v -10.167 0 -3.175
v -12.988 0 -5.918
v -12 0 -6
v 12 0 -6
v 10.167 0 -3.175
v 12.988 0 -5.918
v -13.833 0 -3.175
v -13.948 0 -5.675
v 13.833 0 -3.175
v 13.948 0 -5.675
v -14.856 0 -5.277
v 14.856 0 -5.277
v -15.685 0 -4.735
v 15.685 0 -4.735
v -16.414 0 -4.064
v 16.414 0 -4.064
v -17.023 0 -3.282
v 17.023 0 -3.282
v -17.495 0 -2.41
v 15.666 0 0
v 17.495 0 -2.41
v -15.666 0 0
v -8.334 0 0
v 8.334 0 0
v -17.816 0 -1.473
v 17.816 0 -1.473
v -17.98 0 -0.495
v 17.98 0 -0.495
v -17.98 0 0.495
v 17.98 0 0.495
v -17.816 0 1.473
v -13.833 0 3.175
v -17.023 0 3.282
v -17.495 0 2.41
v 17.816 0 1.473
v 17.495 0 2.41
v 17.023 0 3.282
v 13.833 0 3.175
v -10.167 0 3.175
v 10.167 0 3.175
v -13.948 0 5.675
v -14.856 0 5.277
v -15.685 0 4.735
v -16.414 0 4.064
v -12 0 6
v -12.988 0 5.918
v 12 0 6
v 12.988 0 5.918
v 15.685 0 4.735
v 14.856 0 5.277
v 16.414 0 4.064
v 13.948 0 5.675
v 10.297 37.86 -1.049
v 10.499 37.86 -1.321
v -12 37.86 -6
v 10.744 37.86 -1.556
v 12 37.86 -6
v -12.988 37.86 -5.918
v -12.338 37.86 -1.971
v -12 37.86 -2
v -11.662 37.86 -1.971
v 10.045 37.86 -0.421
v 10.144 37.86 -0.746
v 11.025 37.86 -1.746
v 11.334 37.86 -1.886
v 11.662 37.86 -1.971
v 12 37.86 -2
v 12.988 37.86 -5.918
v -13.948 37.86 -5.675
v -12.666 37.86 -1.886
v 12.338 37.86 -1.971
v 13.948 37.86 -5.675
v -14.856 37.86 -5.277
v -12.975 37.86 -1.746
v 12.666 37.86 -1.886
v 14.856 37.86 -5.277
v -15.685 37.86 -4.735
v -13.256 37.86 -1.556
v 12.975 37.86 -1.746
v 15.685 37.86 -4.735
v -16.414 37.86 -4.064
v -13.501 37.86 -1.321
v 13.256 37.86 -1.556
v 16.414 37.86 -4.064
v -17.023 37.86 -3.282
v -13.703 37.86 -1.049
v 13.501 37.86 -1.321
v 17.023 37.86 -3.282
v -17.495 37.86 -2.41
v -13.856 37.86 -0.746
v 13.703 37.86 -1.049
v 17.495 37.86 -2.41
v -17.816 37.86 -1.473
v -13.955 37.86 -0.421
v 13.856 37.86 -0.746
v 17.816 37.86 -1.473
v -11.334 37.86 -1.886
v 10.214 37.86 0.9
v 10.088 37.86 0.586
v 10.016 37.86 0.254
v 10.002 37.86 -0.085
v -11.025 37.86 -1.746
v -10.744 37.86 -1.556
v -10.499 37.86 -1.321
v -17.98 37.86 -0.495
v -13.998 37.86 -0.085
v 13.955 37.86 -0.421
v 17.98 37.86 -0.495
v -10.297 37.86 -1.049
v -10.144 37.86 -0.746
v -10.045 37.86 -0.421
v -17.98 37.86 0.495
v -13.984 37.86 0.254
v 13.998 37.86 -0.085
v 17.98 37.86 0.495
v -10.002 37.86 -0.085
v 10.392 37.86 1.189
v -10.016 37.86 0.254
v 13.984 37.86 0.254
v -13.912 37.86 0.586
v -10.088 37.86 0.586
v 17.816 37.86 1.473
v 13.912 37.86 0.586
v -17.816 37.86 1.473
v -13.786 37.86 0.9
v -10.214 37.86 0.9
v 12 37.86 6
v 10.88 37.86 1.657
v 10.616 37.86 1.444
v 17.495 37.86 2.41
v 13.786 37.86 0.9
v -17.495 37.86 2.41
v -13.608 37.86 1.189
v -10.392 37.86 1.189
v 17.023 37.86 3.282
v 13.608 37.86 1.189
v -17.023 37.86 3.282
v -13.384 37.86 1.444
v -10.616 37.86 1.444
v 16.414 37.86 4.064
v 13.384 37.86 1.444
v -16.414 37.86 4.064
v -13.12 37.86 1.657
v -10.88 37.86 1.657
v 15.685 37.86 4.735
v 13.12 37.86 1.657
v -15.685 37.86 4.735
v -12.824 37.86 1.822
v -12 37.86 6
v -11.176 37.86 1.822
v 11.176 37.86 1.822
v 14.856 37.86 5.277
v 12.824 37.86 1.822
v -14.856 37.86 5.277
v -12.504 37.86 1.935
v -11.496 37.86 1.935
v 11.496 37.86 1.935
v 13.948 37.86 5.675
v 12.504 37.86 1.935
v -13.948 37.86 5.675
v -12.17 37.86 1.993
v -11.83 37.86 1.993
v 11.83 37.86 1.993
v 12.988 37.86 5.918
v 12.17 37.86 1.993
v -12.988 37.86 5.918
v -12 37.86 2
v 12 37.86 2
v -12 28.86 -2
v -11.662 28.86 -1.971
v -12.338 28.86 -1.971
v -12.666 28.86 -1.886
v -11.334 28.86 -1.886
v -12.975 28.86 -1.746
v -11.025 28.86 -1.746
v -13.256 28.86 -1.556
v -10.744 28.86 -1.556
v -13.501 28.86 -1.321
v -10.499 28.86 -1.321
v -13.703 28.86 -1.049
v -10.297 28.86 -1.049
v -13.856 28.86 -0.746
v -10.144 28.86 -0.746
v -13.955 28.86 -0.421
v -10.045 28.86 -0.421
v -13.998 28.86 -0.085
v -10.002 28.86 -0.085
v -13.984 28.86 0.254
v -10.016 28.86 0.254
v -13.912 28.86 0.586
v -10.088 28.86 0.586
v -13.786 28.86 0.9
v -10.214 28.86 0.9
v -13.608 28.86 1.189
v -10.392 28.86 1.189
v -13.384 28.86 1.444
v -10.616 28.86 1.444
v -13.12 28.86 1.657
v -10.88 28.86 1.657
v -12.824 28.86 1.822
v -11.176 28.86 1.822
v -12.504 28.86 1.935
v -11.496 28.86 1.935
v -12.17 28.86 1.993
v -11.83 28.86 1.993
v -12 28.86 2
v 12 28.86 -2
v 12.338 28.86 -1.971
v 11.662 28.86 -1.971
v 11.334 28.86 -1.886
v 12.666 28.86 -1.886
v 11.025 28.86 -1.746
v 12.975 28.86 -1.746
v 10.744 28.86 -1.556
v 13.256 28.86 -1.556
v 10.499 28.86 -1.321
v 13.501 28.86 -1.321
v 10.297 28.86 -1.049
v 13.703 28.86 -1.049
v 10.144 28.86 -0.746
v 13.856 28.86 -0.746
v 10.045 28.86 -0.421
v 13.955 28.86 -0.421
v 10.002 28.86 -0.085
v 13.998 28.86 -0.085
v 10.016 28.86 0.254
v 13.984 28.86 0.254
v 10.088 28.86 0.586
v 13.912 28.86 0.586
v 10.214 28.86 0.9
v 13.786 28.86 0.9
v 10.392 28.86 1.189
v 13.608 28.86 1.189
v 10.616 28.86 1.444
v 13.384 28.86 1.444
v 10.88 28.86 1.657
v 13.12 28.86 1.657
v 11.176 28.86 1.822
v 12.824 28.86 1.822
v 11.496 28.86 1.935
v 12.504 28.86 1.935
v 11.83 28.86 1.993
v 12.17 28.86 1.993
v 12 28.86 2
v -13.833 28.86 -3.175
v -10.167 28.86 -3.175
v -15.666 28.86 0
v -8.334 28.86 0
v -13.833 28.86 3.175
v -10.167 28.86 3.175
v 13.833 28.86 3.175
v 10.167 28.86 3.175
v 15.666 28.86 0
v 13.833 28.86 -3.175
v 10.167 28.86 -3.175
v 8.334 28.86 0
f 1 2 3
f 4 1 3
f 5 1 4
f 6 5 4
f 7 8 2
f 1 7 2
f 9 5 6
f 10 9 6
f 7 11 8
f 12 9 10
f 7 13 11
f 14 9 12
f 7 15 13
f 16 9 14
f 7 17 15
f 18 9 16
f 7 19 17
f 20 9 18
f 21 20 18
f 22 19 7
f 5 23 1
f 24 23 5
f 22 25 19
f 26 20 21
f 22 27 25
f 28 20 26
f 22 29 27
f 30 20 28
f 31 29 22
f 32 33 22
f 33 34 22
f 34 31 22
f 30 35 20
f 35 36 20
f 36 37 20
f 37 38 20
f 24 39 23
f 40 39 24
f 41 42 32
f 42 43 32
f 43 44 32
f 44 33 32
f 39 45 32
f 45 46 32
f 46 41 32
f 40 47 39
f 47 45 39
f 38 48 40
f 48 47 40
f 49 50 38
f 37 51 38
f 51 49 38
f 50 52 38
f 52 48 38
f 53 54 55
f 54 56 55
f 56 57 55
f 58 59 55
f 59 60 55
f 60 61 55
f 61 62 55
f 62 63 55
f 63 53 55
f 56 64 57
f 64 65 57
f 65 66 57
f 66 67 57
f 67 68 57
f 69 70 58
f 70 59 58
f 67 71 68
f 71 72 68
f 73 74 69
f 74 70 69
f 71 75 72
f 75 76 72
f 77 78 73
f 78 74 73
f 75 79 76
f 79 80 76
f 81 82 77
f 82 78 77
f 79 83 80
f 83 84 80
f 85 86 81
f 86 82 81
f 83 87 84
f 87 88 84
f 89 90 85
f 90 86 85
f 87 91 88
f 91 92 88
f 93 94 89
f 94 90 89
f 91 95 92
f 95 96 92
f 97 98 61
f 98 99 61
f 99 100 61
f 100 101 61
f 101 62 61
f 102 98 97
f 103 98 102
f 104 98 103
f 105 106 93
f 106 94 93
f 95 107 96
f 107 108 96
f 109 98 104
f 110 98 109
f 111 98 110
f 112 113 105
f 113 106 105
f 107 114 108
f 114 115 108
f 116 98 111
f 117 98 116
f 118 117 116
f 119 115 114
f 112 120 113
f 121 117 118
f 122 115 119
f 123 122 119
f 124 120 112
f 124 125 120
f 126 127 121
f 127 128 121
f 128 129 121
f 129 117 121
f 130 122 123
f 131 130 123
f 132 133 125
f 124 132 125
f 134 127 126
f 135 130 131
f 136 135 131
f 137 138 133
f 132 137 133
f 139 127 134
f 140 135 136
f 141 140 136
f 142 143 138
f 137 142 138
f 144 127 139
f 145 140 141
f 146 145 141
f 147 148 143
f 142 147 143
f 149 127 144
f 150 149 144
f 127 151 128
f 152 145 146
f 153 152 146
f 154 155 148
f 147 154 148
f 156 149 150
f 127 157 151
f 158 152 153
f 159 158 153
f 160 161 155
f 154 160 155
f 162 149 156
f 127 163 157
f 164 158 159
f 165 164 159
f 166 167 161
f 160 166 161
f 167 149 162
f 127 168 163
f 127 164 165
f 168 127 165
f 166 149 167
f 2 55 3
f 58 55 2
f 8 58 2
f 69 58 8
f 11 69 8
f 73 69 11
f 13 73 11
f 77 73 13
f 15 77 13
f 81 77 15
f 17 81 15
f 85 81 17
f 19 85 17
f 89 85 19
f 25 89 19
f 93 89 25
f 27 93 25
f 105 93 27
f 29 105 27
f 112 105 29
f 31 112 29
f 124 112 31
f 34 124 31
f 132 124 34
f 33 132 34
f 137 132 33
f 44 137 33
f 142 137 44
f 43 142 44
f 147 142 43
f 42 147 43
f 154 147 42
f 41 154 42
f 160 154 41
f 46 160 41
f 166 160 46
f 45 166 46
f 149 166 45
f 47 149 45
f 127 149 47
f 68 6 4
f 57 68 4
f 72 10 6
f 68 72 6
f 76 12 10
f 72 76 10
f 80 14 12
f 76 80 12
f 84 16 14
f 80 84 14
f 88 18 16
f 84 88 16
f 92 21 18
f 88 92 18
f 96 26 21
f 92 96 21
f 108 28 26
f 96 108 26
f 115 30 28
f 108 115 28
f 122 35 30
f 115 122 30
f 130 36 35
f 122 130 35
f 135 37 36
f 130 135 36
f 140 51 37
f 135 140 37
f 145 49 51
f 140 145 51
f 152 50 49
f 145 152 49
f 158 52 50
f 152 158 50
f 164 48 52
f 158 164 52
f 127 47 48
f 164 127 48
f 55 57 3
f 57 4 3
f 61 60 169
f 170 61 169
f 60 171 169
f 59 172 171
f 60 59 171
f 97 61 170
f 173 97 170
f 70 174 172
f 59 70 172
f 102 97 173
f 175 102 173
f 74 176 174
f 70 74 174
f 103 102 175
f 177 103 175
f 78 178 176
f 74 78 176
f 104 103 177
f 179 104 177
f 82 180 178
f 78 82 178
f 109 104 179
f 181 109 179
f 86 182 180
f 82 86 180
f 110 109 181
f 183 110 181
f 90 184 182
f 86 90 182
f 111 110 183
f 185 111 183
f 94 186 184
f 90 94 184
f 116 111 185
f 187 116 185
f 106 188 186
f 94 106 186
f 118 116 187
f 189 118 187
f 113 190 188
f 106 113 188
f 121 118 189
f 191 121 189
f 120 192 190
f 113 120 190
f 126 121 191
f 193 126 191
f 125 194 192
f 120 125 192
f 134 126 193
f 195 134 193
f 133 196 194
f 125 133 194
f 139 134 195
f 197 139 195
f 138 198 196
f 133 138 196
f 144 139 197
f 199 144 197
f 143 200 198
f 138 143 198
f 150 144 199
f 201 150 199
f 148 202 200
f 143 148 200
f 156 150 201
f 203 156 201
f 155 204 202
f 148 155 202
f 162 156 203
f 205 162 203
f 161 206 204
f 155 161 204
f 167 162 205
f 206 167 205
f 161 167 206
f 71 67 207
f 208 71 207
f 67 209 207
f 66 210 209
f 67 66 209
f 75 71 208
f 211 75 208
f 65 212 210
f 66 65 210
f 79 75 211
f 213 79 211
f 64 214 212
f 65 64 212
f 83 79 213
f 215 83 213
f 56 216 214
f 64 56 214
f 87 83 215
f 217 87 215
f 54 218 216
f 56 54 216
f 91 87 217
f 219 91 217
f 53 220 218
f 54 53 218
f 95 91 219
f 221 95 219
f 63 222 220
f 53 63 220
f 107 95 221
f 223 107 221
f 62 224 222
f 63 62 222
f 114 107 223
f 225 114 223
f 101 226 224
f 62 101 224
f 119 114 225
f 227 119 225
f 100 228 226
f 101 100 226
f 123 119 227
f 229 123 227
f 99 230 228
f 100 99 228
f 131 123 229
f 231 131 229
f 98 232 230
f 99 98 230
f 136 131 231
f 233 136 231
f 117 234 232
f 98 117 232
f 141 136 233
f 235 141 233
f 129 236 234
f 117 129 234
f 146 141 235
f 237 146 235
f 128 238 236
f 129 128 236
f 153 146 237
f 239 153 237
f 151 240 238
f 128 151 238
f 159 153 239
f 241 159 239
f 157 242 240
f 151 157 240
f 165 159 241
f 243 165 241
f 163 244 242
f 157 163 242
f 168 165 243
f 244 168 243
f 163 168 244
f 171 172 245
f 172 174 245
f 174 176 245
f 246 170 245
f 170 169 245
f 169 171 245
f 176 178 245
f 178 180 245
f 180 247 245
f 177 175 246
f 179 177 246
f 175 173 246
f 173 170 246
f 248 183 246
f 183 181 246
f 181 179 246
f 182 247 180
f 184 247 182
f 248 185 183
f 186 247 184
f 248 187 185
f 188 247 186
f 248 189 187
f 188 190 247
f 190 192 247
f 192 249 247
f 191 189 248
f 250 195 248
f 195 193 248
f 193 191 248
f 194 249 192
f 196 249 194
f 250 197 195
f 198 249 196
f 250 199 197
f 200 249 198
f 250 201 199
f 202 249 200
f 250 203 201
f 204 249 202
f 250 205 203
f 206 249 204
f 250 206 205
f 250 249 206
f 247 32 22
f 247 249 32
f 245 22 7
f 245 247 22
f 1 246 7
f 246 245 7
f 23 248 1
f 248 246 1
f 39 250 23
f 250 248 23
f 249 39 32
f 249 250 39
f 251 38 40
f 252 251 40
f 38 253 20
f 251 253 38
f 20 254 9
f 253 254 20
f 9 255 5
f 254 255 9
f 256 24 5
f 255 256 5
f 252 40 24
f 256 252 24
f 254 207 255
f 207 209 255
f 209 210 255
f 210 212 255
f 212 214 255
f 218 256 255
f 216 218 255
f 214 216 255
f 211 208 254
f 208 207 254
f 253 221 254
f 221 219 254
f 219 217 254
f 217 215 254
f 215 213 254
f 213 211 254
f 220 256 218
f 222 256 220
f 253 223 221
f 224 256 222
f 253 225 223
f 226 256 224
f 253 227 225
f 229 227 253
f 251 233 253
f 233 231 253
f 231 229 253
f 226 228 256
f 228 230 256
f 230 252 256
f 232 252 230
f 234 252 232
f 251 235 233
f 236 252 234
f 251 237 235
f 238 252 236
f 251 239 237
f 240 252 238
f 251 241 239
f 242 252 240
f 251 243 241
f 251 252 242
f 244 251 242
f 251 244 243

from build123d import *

# Parameters (mm, degrees)
SKETCH1_R           = 2
BOSS_EXTRUDE1_DEPTH = 37.86
CUT_EXTRUDE1_DEPTH  = 28.86


with BuildPart() as part:
    # Sketch1 → Boss-Extrude1 (new body)
    with BuildSketch(Plane(origin=(0, 0, 0), x_dir=(1, 0, 0), z_dir=(0, 1, 0))):
        with BuildLine():
            Line((-12, 6), (12, 6))
            ThreePointArc((12, 6), (18, 0), (12, -6))
            Line((12, -6), (-12, -6))
            ThreePointArc((-12, -6), (-18, 0), (-12, 6))
        make_face()
        with Locations(Location((-12, 0, 0), (0, 0, 270))):
            Circle(SKETCH1_R, mode=Mode.SUBTRACT)
        with Locations(Location((12, 0, 0), (0, 0, 270))):
            Circle(SKETCH1_R, mode=Mode.SUBTRACT)
    extrude(amount=BOSS_EXTRUDE1_DEPTH)

    # Sketch2 → Cut-Extrude1 (cut)
    with BuildSketch(Plane.XZ):
        Polygon((-13.833087105, 3.175), (-15.666174209, 0), (-13.833087105, -3.175), (-10.166912895, -3.175), (-8.333825791, 0), (-10.166912895, 3.175), align=None)
    cut_extrude1 = extrude(amount=-CUT_EXTRUDE1_DEPTH, mode=Mode.SUBTRACT)

    # Mirror1: Cut-Extrude1 across plane
    add(cut_extrude1.mirror(Plane(origin=(0, 0, 0), x_dir=(0, 0, 1), z_dir=(1, 0, 0))), mode=Mode.SUBTRACT)


solid = part.part
